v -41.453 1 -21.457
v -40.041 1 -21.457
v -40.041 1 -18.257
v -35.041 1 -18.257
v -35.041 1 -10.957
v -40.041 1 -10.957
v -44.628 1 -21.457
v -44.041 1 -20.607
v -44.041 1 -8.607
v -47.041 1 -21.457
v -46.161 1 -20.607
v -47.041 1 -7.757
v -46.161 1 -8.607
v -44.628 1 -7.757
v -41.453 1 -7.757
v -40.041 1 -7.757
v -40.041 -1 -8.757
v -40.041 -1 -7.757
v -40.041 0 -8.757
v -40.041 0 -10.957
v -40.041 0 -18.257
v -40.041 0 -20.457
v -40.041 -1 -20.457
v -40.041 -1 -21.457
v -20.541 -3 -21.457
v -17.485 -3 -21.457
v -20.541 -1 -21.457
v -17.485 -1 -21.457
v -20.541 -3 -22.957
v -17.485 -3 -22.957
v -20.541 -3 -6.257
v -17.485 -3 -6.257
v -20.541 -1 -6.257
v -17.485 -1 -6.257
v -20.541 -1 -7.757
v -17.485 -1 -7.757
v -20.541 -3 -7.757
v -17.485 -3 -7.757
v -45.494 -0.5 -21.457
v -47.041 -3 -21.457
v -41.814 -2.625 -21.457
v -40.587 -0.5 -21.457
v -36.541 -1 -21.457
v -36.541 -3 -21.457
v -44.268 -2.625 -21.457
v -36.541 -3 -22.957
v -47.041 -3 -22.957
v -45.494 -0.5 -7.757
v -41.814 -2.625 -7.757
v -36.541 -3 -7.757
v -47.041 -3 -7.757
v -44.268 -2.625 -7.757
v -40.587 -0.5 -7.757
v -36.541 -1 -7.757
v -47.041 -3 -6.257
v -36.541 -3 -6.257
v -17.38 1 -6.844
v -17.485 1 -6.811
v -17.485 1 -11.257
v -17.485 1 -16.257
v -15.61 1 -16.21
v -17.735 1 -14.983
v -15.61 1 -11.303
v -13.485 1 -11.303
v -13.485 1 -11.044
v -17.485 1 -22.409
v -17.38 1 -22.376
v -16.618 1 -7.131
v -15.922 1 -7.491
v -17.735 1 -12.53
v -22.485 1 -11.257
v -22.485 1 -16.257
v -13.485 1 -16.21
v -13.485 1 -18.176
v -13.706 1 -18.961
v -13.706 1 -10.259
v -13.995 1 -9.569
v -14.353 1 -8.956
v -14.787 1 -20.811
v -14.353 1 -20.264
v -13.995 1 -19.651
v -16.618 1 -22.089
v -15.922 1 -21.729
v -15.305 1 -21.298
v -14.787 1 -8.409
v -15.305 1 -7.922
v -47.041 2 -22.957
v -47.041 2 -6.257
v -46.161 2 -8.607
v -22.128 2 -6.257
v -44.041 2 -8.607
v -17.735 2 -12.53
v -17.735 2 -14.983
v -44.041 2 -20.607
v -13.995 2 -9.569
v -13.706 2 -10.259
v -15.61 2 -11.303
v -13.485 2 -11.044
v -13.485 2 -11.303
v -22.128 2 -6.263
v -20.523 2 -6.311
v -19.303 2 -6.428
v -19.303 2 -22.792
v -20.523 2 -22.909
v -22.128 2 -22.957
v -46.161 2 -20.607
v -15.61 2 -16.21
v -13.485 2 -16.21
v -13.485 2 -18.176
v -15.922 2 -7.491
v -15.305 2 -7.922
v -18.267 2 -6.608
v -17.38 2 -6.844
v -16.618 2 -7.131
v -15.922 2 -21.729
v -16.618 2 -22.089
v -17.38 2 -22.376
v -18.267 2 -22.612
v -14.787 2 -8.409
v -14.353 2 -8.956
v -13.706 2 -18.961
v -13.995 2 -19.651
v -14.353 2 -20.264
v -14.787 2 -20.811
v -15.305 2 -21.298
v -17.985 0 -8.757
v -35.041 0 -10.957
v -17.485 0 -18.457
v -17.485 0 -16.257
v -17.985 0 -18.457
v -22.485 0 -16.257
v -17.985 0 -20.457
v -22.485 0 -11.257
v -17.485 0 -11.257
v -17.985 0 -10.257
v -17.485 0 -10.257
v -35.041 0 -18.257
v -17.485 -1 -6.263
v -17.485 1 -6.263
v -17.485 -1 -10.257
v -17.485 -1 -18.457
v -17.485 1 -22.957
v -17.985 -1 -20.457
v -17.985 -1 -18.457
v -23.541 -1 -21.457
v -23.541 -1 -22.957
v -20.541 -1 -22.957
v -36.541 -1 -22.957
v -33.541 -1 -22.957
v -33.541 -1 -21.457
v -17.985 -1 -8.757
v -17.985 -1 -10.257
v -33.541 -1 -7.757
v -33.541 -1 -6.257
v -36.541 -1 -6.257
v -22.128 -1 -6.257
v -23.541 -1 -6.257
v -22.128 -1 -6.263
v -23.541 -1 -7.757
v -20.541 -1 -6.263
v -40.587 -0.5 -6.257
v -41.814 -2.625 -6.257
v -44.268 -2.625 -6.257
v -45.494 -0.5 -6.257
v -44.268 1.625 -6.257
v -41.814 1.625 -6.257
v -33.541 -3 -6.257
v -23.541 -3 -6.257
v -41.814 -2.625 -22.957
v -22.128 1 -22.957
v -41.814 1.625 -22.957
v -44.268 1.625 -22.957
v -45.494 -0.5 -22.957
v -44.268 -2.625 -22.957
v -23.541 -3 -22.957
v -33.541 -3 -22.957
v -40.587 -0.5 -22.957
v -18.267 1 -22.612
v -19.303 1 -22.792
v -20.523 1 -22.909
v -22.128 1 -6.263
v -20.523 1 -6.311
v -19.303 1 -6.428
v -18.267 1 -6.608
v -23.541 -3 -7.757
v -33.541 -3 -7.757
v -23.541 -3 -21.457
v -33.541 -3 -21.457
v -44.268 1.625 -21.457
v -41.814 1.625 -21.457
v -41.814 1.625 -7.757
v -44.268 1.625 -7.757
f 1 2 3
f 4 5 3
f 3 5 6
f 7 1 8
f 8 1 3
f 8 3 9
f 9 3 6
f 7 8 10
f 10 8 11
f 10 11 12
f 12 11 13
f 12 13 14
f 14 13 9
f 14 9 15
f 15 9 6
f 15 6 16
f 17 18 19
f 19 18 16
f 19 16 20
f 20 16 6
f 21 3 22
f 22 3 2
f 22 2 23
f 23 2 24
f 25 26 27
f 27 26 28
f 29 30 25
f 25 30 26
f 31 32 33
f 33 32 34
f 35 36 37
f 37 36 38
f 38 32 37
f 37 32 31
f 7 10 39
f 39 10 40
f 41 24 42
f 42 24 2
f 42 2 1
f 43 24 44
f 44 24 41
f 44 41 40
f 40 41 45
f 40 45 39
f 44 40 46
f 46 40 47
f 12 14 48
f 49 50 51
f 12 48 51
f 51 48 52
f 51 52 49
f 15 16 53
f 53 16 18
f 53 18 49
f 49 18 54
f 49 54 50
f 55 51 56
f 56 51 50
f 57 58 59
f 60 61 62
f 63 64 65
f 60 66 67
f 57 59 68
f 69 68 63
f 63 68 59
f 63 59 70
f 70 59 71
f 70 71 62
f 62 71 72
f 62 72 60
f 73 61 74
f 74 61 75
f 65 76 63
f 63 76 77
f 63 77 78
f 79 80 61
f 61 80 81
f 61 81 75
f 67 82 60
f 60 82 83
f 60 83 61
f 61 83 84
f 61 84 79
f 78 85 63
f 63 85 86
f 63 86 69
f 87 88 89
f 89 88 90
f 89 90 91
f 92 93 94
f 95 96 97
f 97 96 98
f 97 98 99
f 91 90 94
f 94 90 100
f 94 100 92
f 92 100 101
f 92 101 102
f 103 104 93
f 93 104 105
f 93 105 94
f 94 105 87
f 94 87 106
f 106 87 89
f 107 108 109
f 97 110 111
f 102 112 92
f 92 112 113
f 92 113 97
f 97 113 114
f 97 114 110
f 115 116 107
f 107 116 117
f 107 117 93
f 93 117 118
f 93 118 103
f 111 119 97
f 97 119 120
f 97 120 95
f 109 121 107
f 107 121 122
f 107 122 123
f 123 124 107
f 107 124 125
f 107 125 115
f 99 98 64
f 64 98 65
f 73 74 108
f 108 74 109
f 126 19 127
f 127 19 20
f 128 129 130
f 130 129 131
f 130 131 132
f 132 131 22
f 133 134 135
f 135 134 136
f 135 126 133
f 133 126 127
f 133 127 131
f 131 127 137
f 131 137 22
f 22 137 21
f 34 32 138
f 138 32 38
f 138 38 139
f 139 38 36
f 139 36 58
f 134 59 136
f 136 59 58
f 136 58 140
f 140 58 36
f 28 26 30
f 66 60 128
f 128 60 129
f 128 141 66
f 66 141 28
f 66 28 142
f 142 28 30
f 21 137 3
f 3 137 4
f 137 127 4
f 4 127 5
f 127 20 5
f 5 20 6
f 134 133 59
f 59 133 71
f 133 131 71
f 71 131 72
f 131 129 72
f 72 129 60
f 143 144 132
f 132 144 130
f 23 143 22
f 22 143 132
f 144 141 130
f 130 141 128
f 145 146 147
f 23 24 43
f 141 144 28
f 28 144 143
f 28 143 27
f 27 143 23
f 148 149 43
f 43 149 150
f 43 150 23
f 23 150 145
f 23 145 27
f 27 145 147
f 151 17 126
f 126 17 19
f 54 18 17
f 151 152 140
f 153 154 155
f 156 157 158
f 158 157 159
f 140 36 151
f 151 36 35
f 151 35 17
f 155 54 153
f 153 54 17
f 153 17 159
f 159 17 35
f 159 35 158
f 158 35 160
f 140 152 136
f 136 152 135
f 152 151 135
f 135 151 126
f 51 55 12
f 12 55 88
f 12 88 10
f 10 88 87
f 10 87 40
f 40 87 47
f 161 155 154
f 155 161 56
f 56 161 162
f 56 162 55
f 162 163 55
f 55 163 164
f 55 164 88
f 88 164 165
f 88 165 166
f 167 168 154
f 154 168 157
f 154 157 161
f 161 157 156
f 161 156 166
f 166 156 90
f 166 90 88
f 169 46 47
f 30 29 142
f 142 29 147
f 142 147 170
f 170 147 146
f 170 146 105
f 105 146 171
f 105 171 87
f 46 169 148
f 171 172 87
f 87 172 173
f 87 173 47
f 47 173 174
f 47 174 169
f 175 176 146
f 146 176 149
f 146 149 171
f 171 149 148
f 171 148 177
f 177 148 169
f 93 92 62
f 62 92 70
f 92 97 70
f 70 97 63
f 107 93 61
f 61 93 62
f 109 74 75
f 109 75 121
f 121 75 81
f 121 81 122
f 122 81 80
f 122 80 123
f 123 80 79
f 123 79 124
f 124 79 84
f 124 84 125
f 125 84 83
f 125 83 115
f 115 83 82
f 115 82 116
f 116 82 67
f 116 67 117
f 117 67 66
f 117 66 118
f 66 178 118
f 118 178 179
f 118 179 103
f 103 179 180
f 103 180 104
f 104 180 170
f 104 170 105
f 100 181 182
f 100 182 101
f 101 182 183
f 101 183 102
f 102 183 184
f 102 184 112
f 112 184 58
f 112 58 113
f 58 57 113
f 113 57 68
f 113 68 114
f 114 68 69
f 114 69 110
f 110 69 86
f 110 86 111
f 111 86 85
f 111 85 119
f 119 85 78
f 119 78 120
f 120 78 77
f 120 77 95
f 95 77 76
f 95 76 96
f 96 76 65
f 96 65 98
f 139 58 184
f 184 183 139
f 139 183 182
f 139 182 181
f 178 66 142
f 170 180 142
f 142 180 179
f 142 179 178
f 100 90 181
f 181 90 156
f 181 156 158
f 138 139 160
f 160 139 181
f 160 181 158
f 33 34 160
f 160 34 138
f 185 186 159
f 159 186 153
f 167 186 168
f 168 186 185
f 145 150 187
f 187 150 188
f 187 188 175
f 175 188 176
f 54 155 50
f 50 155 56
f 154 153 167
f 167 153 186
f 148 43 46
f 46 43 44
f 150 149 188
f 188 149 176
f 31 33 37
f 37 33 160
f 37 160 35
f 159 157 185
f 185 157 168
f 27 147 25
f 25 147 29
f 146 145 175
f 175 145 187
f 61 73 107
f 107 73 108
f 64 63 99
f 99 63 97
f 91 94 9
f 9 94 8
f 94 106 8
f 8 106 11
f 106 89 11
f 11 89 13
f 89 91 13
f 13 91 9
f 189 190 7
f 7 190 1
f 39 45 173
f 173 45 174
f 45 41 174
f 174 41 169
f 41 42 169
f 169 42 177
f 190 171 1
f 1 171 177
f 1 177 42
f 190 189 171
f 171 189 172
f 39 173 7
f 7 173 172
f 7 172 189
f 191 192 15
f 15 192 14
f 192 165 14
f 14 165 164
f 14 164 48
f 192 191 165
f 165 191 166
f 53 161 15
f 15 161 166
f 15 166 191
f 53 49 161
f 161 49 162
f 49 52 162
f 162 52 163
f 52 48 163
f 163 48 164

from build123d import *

# Parameters (mm, degrees)
SKETCH1_W              = 22.5552
SKETCH1_H              = 12.7
BOSS_EXTRUDE1_DEPTH    = 1
SKETCH2_W              = 5
SKETCH2_H              = 7.3
CUT_EXTRUDE1_DEPTH     = 1
SKETCH3_W              = 5
SKETCH3_H              = 5
CUT_EXTRUDE2_DEPTH     = 1
BOSS_EXTRUDE2_DEPTH    = 1
SKETCH5_W              = 33.5552
SKETCH5_H              = 16.7
BOSS_EXTRUDE3_DEPTH    = 1
CUT_EXTRUDE4_DEPTH     = 1
CUT_EXTRUDE5_START     = -4
CUT_EXTRUDE5_DEPTH     = 5
SKETCH10_W             = 22.5552
SKETCH10_H             = 2
BOSS_EXTRUDE4_DEPTH    = 2
SKETCH11_W             = 8.919893548
SKETCH11_H             = 0.730490532
CUT_EXTRUDE6_DEPTH     = 3
SKETCH12_W             = 22.5552
SKETCH12_H             = 1.5
BOSS_EXTRUDE5_DEPTH    = 2
SKETCH13_W             = 3
SKETCH13_H             = 1.5
CUT_EXTRUDE7_DEPTH     = 2
SKETCH14_W             = 2.125
SKETCH14_H             = 1.226869322
CUT_EXTRUDE8_DEPTH     = 1
SKETCH15_W             = 2.12
SKETCH15_H             = 12
ADAPTER_PCB_HOLE_DEPTH = 1
SKETCH16_W             = 7
SKETCH16_H             = 1.5
BOSS_EXTRUDE6_DEPTH    = 4
NUT_HOLE_DEPTH         = 1.5
SKETCH20_W             = 7
SKETCH20_H             = 1.5
BOSS_EXTRUDE7_DEPTH    = 4
NUT_HOLE2_DEPTH        = 1.5


with BuildPart() as part:
    # Sketch1 → Boss-Extrude1 (new body)
    with BuildSketch(Plane(origin=(0, 0, 0), x_dir=(1, 0, 0), z_dir=(0, 1, 0))):
        with Locations((-28.763088774, 14.606547542)):
            Rectangle(SKETCH1_W, SKETCH1_H)
    extrude(amount=BOSS_EXTRUDE1_DEPTH)

    # Sketch2 → Cut-Extrude1 (cut)
    with BuildSketch(Plane(origin=(0, 1, 0), x_dir=(1, 0, 0), z_dir=(0, 1, 0))):
        with Locations((-37.540688774, 14.606547542)):
            Rectangle(SKETCH2_W, SKETCH2_H)
    extrude(amount=-CUT_EXTRUDE1_DEPTH, mode=Mode.SUBTRACT)

    # Sketch3 → Cut-Extrude2 (cut)
    with BuildSketch(Plane(origin=(0, 1, 0), x_dir=(1, 0, 0), z_dir=(0, 1, 0))):
        with Locations((-19.985488774, 13.756547542)):
            Rectangle(SKETCH3_W, SKETCH3_H)
    extrude(amount=-CUT_EXTRUDE2_DEPTH, mode=Mode.SUBTRACT)

    # Sketch4 → Boss-Extrude2 (add)
    with BuildSketch(Plane.XZ):
        Polygon((-40.040688774, -8.256547542), (-40.040688774, -8.756547542), (-17.985488774, -8.756547542), (-17.985488774, -10.256547542), (-17.485488774, -10.256547542), (-17.485488774, -8.256547542), align=None)
        Polygon((-17.985488774, -20.456547542), (-40.040688774, -20.456547542), (-40.040688774, -20.956547542), (-17.485488774, -20.956547542), (-17.485488774, -18.456547542), (-17.985488774, -18.456547542), align=None)
    extrude(amount=BOSS_EXTRUDE2_DEPTH)

    # Sketch5 → Boss-Extrude3 (add)
    with BuildSketch(Plane(origin=(0, 1, 0), x_dir=(1, 0, 0), z_dir=(0, 1, 0))):
        with Locations((-30.263088774, 14.606547542)):
            Rectangle(SKETCH5_W, SKETCH5_H)
    extrude(amount=BOSS_EXTRUDE3_DEPTH)

    # Sketch7 → Cut-Extrude4 (cut)
    with BuildSketch(Plane(origin=(0, 1, 0), x_dir=(-1, 0, 0), z_dir=(0, -1, 0))):
        Polygon((17.735488774, 14.983416864), (15.610488774, 16.210286186), (13.485488774, 14.983416864), (13.485488774, 12.52967822), (15.610488774, 11.302808898), (17.735488774, 12.52967822), align=None)
    extrude(amount=-CUT_EXTRUDE4_DEPTH, mode=Mode.SUBTRACT)

    # Sketch8 → Cut-Extrude5 (cut)
    with BuildSketch(Plane(origin=(0, 2, 0), x_dir=(1, 0, 0), z_dir=(0, 1, 0)).offset(CUT_EXTRUDE5_START)):
        with BuildLine():
            Line((-13.485488774, 22.956547542), (-22.127760886, 22.956547542))
            add(Edge.make_bspline(
                [(-22.127760886, 22.956547542), (-17.367981555, 22.956547542), (-14.30272025, 21.87197064), (-13.485488774, 18.176213027)],
                knots=[0, 0, 0, 0, 1, 1, 1, 1], degree=3))
            Line((-13.485488774, 18.176213027), (-13.485488774, 22.956547542))
        make_face()
    cut_extrude5 = extrude(amount=CUT_EXTRUDE5_DEPTH, mode=Mode.SUBTRACT)

    # Mirror2: Cut-Extrude5 across plane
    add(cut_extrude5.mirror(Plane.XY.offset(-14.61)), mode=Mode.SUBTRACT)

    # Sketch10 → Boss-Extrude4 (add)
    with BuildSketch(Plane(origin=(0, 1, 0), x_dir=(-1, 0, 0), z_dir=(0, -1, 0))):
        with Locations((28.763088774, 7.256547542)):
            Rectangle(SKETCH10_W, SKETCH10_H)
        with Locations((28.763088774, 21.956547542)):
            Rectangle(SKETCH10_W, SKETCH10_H)
    extrude(amount=BOSS_EXTRUDE4_DEPTH)

    # Sketch11 → Cut-Extrude6 (cut)
    with BuildSketch(Plane(origin=(0, 2, 0), x_dir=(1, 0, 0), z_dir=(0, 1, 0))):
        with Locations((-17.667814112, 5.898207192)):
            Rectangle(SKETCH11_W, SKETCH11_H)
    extrude(amount=-CUT_EXTRUDE6_DEPTH, mode=Mode.SUBTRACT)

    # Sketch12 → Boss-Extrude5 (add)
    with BuildSketch(Plane(origin=(0, -1, 0), x_dir=(-1, 0, 0), z_dir=(0, -1, 0))):
        with Locations((28.763088774, 7.006547542)):
            Rectangle(SKETCH12_W, SKETCH12_H)
        with Locations((28.763088774, 22.206547542)):
            Rectangle(SKETCH12_W, SKETCH12_H)
    extrude(amount=BOSS_EXTRUDE5_DEPTH)

    # Sketch13 → Cut-Extrude7 (cut)
    with BuildSketch(Plane(origin=(0, -3, 0), x_dir=(-1, 0, 0), z_dir=(0, -1, 0))):
        with Locations((35.040688774, 7.006547542)):
            Rectangle(SKETCH13_W, SKETCH13_H)
        with Locations((35.040688774, 22.206547542)):
            Rectangle(SKETCH13_W, SKETCH13_H)
        with Locations((22.040688774, 7.006547542)):
            Rectangle(SKETCH13_W, SKETCH13_H)
        with Locations((22.040688774, 22.206547542)):
            Rectangle(SKETCH13_W, SKETCH13_H)
    extrude(amount=-CUT_EXTRUDE7_DEPTH, mode=Mode.SUBTRACT)

    # Sketch14 → Cut-Extrude8 (cut)
    with BuildSketch(Plane(origin=(0, 2, 0), x_dir=(1, 0, 0), z_dir=(0, 1, 0))):
        with Locations((-14.547988774, 15.596851525)):
            Rectangle(SKETCH14_W, SKETCH14_H)
        with Locations((-14.547988774, 11.916243559)):
            Rectangle(SKETCH14_W, SKETCH14_H)
    extrude(amount=-CUT_EXTRUDE8_DEPTH, mode=Mode.SUBTRACT)

    # Sketch15 → adapter_PCB_hole (cut)
    with BuildSketch(Plane(origin=(0, 1, 0), x_dir=(-1, 0, 0), z_dir=(0, -1, 0))):
        with Locations((45.100688774, 14.606547542)):
            Rectangle(SKETCH15_W, SKETCH15_H)
    extrude(amount=-ADAPTER_PCB_HOLE_DEPTH, mode=Mode.SUBTRACT)

    # Sketch16 → Boss-Extrude6 (add)
    with BuildSketch(Plane(origin=(0, 1, 0), x_dir=(-1, 0, 0), z_dir=(0, -1, 0))):
        with Locations((43.540688774, 22.206547542)):
            Rectangle(SKETCH16_W, SKETCH16_H)
    extrude(amount=BOSS_EXTRUDE6_DEPTH)

    # Sketch19 → nut_hole (cut)
    with BuildSketch(Plane(origin=(0, 0, -22.956547542), x_dir=(-1, 0, 0), z_dir=(0, 0, -1))):
        Polygon((45.494427418, -0.5), (44.267558096, 1.625), (41.813819452, 1.625), (40.58695013, -0.5), (41.813819452, -2.625), (44.267558096, -2.625), align=None)
    extrude(amount=-NUT_HOLE_DEPTH, mode=Mode.SUBTRACT)

    # Sketch20 → Boss-Extrude7 (add)
    with BuildSketch(Plane(origin=(0, 1, 0), x_dir=(-1, 0, 0), z_dir=(0, -1, 0))):
        with Locations((43.540688774, 7.006547542)):
            Rectangle(SKETCH20_W, SKETCH20_H)
    extrude(amount=BOSS_EXTRUDE7_DEPTH)

    # Sketch21 → nut_hole2 (cut)
    with BuildSketch(Plane.XY.offset(-6.256547542)):
        Polygon((-45.494427418, -0.5), (-44.267558096, -2.625), (-41.813819452, -2.625), (-40.58695013, -0.5), (-41.813819452, 1.625), (-44.267558096, 1.625), align=None)
    extrude(amount=-NUT_HOLE2_DEPTH, mode=Mode.SUBTRACT)


solid = part.part
